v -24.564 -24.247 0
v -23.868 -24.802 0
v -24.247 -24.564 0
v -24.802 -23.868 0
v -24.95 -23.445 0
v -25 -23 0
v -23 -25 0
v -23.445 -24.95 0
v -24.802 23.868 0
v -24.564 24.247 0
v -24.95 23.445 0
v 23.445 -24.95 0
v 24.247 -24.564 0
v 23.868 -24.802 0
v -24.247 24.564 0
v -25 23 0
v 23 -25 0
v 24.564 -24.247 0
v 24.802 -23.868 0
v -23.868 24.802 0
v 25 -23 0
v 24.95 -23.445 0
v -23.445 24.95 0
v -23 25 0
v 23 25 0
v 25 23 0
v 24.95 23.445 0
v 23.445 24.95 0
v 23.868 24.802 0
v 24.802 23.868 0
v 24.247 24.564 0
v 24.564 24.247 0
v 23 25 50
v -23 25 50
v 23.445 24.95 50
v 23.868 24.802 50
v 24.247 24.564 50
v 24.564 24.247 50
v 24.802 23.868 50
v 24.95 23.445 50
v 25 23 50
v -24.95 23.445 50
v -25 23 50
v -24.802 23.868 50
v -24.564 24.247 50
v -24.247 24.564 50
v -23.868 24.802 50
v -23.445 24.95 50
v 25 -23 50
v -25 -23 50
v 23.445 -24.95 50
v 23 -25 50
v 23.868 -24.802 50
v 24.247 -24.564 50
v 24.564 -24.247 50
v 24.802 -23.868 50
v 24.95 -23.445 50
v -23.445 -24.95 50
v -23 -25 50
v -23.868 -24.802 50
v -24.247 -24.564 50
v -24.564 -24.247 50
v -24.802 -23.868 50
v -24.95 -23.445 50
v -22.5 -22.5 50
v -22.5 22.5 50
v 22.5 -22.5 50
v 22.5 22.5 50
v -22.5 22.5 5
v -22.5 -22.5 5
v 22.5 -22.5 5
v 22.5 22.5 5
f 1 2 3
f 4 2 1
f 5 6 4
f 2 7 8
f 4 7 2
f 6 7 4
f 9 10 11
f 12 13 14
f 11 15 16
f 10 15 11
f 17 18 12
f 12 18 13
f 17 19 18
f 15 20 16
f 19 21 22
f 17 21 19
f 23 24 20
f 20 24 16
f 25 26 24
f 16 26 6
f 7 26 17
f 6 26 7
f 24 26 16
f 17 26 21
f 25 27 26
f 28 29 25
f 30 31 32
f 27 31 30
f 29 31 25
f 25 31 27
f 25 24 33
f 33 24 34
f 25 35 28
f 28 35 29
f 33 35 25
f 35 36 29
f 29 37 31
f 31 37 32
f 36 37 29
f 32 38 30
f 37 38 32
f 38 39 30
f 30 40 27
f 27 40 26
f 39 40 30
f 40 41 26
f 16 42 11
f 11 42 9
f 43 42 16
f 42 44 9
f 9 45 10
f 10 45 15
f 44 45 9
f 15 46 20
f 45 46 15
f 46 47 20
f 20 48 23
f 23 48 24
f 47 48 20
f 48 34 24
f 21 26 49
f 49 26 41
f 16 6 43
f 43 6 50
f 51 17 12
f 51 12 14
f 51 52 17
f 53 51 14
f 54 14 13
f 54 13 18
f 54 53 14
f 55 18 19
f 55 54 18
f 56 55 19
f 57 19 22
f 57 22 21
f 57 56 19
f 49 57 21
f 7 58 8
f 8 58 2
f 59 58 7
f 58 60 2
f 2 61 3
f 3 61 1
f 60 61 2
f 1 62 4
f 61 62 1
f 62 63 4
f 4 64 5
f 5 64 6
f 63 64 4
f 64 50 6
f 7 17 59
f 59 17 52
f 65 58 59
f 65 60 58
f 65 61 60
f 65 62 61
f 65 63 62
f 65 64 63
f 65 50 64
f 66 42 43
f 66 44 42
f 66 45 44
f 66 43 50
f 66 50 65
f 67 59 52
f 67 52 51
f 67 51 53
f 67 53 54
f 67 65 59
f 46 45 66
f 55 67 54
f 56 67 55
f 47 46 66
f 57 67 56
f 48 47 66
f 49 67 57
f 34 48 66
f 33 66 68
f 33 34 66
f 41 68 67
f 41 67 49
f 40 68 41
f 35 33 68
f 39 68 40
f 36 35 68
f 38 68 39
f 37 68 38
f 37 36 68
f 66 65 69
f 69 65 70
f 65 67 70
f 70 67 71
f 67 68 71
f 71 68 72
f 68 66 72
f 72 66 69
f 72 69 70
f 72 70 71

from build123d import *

# Parameters (mm, degrees)
SKETCH_W     = 50
SKETCH_H     = 50
PAD_DEPTH    = 50
SKETCH001_W  = 45
SKETCH001_H  = 45
POCKET_DEPTH = 45
FILLET_R     = 2
FILLET001_R  = 2
FILLET002_R  = 2
FILLET003_R  = 2


with BuildPart() as part:
    # Sketch → Pad (new body)
    with BuildSketch(Plane.XY):
        Rectangle(SKETCH_W, SKETCH_H)
    extrude(amount=PAD_DEPTH)

    # Sketch001 (on Face6 of Pad) → Pocket (cut)
    with BuildSketch(Plane.XY.offset(50)):
        Rectangle(SKETCH001_W, SKETCH001_H)
    extrude(amount=-POCKET_DEPTH, mode=Mode.SUBTRACT)

    # Fillet
    fillet_edges = [part.edges().sort_by_distance(p)[0] for p in [
        (25, -25, 25),
    ]]
    fillet(fillet_edges, radius=FILLET_R)

    # Fillet001
    fillet001_edges = [part.edges().sort_by_distance(p)[0] for p in [
        (-25, -25, 25),
    ]]
    fillet(fillet001_edges, radius=FILLET001_R)

    # Fillet002
    fillet002_edges = [part.edges().sort_by_distance(p)[0] for p in [
        (-25, 25, 25),
    ]]
    fillet(fillet002_edges, radius=FILLET002_R)

    # Fillet003
    fillet003_edges = [part.edges().sort_by_distance(p)[0] for p in [
        (25, 25, 25),
    ]]
    fillet(fillet003_edges, radius=FILLET003_R)


solid = part.part
